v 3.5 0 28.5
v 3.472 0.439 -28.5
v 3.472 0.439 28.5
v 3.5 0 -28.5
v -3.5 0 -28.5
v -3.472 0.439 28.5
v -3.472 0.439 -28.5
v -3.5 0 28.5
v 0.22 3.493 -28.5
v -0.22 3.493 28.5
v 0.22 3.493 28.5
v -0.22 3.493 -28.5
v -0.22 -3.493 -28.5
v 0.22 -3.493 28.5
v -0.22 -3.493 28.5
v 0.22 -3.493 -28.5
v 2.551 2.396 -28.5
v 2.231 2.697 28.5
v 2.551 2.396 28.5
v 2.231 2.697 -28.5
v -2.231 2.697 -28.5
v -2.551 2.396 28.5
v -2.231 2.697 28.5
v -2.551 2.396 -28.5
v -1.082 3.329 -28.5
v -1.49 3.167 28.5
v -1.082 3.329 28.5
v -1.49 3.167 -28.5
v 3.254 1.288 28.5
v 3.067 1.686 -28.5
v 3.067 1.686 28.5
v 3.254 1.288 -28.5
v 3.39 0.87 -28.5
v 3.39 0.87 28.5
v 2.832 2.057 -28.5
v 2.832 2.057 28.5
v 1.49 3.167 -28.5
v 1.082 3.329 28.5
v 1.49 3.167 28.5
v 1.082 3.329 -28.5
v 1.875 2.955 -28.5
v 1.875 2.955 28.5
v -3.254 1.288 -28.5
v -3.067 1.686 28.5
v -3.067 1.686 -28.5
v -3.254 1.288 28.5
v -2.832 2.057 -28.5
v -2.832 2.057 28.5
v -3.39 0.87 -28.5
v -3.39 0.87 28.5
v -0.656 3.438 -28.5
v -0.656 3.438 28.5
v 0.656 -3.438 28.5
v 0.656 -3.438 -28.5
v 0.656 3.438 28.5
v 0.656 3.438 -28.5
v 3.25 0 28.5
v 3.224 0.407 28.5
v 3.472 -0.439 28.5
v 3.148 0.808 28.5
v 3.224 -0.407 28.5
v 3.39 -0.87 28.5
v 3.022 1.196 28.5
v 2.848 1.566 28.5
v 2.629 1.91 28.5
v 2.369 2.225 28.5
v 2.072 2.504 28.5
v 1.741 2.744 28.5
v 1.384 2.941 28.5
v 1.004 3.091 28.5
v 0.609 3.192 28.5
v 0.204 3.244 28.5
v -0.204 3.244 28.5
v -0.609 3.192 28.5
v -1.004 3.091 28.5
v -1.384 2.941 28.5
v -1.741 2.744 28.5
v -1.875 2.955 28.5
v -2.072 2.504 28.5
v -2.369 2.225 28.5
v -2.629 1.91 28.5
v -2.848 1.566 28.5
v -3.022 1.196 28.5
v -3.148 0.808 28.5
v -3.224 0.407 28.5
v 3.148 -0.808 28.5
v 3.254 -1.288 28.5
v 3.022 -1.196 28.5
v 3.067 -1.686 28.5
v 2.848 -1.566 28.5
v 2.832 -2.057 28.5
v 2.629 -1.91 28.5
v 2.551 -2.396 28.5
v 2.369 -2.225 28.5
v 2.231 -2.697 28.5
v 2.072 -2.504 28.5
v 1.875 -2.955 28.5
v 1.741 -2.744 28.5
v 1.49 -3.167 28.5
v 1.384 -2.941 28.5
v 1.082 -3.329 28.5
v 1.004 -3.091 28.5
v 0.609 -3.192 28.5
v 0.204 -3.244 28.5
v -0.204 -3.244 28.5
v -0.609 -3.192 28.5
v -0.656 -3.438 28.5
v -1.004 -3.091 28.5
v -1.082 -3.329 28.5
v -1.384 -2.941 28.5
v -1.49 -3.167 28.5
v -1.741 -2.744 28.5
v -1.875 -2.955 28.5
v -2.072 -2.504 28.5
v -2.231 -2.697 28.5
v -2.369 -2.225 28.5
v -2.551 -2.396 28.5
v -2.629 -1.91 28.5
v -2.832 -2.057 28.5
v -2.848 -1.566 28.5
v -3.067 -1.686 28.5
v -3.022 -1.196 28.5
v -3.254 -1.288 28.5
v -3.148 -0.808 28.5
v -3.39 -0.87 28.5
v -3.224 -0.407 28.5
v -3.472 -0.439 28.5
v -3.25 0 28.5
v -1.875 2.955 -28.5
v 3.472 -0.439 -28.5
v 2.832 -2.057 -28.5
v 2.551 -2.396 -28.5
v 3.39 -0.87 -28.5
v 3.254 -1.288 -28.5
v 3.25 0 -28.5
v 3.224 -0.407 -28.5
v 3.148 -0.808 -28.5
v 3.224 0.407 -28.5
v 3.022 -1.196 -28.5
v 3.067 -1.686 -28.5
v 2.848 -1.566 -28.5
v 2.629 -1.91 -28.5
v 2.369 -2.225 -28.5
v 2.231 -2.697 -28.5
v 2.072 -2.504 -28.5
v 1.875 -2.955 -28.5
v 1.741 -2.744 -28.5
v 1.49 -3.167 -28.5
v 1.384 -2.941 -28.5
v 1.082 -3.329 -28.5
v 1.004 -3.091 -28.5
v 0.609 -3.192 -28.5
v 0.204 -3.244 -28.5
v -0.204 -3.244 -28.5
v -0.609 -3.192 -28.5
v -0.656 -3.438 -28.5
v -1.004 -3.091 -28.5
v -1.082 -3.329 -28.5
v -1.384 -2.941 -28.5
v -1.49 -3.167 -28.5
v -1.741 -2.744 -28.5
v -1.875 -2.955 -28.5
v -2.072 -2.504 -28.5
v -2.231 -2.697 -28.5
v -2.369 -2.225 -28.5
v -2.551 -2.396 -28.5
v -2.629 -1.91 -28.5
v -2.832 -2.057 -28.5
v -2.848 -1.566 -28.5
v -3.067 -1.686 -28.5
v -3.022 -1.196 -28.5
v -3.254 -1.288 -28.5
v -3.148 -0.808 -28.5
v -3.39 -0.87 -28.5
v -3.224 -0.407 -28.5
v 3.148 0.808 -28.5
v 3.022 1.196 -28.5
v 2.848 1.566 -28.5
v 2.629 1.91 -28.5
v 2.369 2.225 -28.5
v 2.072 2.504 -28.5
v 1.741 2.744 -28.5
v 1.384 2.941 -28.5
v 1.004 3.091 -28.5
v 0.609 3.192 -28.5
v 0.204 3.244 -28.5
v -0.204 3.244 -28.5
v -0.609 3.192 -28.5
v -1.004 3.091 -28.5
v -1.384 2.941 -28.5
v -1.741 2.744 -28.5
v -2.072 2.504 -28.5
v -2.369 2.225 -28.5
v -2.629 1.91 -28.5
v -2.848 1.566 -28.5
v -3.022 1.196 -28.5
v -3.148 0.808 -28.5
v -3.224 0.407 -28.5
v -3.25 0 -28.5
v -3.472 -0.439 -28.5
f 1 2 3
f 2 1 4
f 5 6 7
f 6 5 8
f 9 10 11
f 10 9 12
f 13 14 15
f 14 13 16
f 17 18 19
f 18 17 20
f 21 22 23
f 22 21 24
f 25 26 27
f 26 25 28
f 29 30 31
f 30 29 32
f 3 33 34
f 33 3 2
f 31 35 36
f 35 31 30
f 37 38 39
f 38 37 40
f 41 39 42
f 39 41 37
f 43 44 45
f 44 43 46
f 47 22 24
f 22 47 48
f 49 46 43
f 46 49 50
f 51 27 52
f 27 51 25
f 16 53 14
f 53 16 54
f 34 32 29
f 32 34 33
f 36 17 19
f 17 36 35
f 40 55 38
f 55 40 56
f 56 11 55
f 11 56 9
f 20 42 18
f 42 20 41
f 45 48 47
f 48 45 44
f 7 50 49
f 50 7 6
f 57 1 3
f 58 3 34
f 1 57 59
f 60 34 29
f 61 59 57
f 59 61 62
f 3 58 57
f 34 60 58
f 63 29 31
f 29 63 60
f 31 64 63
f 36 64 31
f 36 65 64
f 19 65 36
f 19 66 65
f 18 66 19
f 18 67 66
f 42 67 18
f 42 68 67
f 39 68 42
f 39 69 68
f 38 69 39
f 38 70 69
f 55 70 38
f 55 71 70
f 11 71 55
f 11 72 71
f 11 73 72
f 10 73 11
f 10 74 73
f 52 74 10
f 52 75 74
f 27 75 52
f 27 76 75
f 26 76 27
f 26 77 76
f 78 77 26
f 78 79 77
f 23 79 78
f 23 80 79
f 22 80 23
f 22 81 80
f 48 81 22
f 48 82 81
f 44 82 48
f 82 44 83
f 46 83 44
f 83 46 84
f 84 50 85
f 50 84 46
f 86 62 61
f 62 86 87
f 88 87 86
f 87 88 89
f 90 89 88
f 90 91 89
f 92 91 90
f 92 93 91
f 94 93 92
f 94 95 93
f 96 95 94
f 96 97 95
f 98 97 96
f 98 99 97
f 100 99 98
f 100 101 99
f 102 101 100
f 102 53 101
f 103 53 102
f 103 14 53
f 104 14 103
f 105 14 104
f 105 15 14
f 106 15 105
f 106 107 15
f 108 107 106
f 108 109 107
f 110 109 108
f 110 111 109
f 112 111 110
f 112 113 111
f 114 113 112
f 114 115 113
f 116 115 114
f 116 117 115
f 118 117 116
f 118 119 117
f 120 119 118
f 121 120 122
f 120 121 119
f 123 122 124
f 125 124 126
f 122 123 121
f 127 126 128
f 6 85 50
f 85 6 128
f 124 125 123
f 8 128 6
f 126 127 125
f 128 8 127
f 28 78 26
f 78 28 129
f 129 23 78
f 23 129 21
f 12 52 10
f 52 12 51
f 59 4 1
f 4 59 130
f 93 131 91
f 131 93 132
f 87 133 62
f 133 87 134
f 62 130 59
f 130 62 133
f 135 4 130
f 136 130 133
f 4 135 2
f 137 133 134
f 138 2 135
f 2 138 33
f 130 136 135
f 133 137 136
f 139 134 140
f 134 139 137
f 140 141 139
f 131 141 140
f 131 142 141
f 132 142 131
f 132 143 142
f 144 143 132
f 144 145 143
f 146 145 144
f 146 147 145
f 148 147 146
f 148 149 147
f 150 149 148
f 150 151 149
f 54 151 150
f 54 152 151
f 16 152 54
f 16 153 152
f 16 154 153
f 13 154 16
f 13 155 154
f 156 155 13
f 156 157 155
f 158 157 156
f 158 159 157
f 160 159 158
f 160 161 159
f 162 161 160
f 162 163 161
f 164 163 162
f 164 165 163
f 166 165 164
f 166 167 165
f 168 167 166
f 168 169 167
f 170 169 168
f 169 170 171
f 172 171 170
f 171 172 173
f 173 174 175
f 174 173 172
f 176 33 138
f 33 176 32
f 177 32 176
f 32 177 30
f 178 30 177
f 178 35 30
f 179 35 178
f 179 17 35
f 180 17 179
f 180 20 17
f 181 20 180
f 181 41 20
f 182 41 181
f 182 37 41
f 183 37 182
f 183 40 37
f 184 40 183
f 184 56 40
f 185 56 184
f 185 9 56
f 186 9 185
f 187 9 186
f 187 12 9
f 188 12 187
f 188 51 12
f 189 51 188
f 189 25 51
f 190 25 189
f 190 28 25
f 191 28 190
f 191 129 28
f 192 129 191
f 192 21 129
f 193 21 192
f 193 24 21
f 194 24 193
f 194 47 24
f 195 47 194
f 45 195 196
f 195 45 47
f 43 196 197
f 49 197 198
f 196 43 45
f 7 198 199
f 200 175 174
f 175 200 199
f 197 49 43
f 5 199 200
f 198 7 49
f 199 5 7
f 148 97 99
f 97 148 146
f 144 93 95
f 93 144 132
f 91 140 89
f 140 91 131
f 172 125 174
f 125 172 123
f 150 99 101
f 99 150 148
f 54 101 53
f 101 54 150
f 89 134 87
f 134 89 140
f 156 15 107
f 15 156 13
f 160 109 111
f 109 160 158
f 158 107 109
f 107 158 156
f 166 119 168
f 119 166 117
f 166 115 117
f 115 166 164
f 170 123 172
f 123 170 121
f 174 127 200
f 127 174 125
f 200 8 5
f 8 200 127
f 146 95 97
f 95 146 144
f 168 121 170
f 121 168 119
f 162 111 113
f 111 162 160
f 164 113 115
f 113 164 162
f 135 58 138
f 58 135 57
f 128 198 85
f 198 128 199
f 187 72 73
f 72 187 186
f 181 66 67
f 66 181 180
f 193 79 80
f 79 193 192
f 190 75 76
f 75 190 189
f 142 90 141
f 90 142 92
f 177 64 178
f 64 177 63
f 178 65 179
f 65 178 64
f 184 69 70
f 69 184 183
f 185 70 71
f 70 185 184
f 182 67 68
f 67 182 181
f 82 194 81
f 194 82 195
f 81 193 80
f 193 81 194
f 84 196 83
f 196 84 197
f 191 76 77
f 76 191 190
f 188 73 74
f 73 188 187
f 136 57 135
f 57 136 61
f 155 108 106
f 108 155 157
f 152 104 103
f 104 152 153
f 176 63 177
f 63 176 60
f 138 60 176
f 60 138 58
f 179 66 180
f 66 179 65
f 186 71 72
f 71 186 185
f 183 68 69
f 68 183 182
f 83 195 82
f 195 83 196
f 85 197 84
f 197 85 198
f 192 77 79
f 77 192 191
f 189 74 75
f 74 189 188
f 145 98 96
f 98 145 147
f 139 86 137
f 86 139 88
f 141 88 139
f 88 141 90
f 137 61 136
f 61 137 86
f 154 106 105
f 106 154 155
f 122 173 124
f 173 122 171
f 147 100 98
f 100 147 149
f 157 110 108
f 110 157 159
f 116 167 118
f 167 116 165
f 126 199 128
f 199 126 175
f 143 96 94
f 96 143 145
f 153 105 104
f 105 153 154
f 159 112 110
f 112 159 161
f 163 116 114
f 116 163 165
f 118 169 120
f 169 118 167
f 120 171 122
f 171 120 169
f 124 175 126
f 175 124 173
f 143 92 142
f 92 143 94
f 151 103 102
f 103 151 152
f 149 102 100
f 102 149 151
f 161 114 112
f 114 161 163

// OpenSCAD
$fn = 50;


difference() {
	union() {
		translate(v = [0, 0, -28.5000000000]) {
			cylinder(h = 57, r = 3.5000000000);
		}
	}
	union() {
		translate(v = [0, 0, -100.0000000000]) {
			cylinder(h = 200, r = 3.2500000000);
		}
	}
}
